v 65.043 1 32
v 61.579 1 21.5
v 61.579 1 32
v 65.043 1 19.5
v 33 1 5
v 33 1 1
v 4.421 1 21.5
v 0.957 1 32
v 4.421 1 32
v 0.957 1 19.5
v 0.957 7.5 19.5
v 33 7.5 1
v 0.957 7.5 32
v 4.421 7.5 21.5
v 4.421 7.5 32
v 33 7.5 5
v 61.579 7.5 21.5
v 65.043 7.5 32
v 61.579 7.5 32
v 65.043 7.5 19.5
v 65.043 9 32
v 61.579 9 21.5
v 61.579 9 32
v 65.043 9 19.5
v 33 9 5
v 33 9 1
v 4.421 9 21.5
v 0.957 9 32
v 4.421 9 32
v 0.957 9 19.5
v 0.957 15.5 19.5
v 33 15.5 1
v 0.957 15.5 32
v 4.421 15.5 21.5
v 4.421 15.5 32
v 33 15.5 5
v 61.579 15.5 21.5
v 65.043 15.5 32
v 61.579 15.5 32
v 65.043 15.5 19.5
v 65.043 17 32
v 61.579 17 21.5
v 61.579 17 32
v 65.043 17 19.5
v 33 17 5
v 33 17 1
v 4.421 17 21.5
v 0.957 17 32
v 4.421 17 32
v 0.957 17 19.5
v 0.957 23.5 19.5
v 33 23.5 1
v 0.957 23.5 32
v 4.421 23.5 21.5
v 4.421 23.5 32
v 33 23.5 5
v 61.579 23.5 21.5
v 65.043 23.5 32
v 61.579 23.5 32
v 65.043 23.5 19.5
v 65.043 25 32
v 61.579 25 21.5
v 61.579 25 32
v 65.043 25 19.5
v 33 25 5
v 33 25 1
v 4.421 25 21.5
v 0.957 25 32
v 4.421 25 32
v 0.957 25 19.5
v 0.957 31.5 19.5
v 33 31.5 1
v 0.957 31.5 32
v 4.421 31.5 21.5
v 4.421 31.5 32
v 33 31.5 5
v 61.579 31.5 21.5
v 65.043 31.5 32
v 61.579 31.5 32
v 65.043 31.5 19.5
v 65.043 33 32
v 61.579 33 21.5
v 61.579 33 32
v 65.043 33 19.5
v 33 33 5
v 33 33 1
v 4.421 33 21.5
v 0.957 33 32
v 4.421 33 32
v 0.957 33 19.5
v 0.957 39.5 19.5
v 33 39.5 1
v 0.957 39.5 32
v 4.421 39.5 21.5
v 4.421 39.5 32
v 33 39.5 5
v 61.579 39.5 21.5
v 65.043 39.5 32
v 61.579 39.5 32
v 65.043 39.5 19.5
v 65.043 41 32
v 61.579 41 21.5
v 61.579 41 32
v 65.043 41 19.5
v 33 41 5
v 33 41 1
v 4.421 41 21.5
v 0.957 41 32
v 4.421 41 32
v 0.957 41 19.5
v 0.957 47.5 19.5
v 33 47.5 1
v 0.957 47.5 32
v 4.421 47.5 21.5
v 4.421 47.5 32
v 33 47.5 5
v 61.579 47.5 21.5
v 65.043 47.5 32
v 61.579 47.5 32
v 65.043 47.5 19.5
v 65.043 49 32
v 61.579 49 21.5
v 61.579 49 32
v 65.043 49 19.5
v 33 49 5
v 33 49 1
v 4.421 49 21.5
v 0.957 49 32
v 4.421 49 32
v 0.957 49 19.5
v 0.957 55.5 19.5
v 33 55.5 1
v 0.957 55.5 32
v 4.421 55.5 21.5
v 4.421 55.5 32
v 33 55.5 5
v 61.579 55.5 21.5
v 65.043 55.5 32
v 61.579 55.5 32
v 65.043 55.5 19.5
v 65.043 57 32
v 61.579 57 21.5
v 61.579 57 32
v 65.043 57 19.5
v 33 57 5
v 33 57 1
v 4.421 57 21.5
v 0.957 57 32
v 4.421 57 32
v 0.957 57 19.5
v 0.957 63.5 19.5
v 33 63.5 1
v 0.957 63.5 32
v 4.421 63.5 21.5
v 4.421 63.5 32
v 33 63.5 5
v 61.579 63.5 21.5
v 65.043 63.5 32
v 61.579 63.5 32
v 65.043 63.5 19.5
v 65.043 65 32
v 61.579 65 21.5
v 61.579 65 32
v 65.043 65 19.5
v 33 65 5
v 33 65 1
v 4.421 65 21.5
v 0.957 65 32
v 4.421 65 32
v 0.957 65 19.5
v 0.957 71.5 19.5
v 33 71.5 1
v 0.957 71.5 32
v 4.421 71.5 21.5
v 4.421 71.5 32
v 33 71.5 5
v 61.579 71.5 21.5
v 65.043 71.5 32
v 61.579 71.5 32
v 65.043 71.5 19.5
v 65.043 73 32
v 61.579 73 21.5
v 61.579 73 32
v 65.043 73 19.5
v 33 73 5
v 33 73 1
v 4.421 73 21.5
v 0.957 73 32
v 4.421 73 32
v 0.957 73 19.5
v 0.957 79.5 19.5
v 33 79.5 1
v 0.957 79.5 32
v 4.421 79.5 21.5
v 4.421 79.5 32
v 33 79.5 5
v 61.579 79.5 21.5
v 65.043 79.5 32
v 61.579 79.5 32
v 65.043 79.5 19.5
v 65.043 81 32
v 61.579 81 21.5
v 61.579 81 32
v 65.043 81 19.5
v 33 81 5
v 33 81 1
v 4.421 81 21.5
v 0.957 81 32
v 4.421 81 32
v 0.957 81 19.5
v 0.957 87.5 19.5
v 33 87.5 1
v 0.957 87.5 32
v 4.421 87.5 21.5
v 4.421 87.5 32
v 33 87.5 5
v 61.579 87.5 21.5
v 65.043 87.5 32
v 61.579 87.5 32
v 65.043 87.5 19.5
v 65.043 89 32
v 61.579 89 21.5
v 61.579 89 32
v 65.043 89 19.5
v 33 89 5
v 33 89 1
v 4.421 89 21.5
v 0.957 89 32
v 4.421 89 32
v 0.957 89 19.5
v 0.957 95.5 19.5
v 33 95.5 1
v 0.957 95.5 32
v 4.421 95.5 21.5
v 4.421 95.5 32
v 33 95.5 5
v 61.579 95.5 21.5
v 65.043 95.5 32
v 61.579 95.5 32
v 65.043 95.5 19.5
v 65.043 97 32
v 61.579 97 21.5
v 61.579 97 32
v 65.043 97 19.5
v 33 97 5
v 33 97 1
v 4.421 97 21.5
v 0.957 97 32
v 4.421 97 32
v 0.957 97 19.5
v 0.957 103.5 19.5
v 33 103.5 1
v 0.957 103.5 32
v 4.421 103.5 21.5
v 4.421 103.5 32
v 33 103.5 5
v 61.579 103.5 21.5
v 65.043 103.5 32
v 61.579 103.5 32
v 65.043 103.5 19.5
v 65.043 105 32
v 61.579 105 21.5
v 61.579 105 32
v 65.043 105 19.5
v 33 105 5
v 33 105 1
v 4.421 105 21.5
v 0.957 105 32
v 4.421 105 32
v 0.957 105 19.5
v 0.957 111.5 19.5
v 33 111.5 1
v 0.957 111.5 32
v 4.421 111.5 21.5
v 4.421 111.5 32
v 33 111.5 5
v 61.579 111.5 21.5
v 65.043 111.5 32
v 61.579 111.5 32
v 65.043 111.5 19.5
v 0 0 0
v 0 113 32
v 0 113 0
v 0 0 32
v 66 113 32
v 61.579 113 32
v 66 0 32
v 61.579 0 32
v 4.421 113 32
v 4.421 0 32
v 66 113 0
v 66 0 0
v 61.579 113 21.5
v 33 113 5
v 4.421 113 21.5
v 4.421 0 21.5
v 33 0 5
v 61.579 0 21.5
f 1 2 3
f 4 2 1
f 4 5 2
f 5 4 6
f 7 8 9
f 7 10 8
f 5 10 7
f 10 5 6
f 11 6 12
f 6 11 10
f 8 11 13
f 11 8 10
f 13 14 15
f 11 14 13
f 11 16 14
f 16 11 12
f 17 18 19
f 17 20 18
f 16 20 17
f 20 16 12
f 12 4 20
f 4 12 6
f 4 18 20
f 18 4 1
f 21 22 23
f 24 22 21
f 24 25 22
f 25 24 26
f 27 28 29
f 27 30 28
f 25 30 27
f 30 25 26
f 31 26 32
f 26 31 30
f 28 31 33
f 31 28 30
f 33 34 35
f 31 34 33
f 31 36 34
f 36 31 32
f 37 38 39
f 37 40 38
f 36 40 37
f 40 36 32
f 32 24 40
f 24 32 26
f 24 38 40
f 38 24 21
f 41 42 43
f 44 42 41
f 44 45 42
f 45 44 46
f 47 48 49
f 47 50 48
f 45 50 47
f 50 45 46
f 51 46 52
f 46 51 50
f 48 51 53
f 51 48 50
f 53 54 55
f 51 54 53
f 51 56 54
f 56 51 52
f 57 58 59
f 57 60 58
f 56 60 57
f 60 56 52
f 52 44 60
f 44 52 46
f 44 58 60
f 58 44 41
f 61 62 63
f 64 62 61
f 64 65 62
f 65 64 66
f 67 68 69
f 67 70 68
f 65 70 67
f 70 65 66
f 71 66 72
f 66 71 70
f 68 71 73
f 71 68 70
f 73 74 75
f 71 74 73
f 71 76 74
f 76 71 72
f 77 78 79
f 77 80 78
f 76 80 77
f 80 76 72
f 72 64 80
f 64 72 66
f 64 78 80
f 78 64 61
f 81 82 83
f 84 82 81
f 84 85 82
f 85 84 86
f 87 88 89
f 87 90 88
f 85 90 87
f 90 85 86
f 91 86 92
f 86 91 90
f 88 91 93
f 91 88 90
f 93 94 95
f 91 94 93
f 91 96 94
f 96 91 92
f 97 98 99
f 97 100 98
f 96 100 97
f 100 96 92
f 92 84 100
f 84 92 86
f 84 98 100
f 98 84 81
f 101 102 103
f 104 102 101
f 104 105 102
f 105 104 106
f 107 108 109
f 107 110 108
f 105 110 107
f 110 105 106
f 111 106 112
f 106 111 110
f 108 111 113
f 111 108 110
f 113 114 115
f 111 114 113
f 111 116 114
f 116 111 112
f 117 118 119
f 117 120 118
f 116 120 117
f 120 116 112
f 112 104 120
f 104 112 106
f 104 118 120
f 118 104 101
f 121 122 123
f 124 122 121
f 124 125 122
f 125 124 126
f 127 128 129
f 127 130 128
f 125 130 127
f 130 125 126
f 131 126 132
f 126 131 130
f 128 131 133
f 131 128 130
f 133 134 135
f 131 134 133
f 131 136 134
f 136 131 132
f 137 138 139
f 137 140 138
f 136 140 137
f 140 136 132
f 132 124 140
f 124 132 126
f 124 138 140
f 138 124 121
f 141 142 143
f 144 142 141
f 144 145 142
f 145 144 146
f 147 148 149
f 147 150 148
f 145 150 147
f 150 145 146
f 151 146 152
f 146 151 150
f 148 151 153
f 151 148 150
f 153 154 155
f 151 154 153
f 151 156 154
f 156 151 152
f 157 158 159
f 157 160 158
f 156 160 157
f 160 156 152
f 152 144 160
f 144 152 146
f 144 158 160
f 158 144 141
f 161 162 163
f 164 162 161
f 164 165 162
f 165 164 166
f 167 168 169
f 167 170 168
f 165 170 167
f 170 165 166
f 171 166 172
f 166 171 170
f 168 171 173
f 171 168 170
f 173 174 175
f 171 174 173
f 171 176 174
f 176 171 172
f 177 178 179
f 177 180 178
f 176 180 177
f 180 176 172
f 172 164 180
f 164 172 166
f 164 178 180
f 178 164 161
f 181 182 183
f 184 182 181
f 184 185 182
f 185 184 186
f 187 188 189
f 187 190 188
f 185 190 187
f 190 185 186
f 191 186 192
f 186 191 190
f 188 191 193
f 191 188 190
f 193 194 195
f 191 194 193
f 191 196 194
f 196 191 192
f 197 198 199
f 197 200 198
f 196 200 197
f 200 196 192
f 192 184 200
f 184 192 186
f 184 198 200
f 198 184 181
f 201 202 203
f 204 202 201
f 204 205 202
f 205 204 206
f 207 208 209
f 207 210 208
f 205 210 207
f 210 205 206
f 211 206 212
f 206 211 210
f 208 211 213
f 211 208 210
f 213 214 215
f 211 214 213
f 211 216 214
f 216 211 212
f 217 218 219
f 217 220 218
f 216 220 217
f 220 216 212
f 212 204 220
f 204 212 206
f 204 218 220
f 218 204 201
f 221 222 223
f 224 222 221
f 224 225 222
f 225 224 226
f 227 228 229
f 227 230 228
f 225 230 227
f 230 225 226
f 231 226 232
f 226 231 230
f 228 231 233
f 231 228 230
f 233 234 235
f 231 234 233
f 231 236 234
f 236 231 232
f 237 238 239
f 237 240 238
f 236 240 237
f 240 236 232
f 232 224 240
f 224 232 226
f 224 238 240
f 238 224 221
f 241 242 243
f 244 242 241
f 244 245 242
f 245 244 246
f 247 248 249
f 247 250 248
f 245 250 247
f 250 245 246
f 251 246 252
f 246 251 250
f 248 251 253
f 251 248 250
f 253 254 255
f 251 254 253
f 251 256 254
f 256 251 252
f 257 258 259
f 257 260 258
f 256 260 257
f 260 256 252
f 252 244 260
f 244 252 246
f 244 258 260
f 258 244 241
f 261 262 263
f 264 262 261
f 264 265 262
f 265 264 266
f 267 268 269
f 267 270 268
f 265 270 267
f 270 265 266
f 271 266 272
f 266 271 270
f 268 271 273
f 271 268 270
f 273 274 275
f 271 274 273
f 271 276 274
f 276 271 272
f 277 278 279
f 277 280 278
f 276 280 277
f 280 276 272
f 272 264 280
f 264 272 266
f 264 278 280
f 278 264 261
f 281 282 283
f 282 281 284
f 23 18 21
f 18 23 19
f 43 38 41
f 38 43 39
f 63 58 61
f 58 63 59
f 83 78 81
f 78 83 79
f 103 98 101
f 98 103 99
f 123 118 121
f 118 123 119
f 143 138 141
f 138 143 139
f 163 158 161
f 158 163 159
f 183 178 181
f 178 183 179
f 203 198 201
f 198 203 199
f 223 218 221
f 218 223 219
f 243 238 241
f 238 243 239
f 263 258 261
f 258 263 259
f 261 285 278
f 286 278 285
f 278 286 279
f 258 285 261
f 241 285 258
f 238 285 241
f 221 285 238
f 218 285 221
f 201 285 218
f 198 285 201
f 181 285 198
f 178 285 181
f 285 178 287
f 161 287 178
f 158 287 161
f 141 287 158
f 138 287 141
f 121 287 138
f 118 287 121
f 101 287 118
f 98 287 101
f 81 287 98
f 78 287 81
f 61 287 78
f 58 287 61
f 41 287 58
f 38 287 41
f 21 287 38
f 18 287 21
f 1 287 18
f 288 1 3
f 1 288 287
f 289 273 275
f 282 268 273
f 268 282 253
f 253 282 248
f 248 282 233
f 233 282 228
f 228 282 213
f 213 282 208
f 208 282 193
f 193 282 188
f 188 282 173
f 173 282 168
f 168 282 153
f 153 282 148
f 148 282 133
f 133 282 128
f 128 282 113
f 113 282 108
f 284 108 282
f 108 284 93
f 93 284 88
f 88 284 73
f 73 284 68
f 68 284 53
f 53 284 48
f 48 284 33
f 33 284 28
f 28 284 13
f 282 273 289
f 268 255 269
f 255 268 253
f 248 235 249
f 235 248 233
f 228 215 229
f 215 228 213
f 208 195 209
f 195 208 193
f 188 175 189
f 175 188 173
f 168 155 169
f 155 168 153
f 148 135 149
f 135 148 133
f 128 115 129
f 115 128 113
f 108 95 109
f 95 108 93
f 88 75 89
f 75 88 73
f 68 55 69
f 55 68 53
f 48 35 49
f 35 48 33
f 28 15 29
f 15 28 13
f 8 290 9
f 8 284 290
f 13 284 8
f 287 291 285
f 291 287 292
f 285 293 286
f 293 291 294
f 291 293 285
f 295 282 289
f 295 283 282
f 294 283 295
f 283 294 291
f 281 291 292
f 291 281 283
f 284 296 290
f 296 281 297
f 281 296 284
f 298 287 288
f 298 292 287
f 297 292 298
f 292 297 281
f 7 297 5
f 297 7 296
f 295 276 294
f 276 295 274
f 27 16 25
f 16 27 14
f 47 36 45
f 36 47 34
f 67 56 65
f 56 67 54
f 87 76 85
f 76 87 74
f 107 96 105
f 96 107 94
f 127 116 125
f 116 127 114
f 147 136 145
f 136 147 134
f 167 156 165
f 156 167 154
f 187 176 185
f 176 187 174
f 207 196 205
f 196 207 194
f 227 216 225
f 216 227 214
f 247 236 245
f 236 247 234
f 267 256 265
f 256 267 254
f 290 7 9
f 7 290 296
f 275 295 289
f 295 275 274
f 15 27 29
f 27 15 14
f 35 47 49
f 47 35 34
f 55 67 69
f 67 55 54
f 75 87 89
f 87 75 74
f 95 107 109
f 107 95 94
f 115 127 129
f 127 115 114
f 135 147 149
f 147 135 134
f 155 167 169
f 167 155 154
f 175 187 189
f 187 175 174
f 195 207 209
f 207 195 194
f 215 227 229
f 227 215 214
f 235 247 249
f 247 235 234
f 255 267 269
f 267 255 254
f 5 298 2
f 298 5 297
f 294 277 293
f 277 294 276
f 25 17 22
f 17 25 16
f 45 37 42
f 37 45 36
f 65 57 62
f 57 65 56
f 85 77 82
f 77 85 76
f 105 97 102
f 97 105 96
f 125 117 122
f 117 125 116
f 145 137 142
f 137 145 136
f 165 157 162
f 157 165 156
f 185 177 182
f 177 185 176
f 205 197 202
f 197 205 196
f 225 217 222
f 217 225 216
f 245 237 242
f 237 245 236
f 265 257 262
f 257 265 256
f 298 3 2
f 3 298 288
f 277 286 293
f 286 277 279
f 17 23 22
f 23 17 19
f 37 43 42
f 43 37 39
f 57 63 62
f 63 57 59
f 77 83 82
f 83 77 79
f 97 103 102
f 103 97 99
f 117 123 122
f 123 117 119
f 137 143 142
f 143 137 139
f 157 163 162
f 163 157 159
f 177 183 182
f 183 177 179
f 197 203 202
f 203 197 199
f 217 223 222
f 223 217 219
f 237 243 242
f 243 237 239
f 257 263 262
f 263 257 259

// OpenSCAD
$fn=200;
THICK = 1;

TILE_L = 7;
TILE_COUNT = 14;

BOX_W = 64;
BOX_L = (TILE_L + 1) * TILE_COUNT - 1;
BOX_H = 32;

difference() {
    cube(size = [
        BOX_W + (THICK * 2),
        BOX_L + (THICK * 2), 
        BOX_H]);

    translate([33, -5, 38])
        rotate([0, 90, 90]) 
            cylinder(h = 200, r = 33, $fn=6);

    for (i = [THICK : TILE_L + 1 : THICK + ((TILE_L + 1) * (TILE_COUNT - 1))] ) {
        tile_slot(i);
    }
}

module tile_slot(y) {
    translate([33, y, 38])
        rotate([0, 90, 90]) 
            cylinder(h = 6.5, r = 37, $fn=6);
}
